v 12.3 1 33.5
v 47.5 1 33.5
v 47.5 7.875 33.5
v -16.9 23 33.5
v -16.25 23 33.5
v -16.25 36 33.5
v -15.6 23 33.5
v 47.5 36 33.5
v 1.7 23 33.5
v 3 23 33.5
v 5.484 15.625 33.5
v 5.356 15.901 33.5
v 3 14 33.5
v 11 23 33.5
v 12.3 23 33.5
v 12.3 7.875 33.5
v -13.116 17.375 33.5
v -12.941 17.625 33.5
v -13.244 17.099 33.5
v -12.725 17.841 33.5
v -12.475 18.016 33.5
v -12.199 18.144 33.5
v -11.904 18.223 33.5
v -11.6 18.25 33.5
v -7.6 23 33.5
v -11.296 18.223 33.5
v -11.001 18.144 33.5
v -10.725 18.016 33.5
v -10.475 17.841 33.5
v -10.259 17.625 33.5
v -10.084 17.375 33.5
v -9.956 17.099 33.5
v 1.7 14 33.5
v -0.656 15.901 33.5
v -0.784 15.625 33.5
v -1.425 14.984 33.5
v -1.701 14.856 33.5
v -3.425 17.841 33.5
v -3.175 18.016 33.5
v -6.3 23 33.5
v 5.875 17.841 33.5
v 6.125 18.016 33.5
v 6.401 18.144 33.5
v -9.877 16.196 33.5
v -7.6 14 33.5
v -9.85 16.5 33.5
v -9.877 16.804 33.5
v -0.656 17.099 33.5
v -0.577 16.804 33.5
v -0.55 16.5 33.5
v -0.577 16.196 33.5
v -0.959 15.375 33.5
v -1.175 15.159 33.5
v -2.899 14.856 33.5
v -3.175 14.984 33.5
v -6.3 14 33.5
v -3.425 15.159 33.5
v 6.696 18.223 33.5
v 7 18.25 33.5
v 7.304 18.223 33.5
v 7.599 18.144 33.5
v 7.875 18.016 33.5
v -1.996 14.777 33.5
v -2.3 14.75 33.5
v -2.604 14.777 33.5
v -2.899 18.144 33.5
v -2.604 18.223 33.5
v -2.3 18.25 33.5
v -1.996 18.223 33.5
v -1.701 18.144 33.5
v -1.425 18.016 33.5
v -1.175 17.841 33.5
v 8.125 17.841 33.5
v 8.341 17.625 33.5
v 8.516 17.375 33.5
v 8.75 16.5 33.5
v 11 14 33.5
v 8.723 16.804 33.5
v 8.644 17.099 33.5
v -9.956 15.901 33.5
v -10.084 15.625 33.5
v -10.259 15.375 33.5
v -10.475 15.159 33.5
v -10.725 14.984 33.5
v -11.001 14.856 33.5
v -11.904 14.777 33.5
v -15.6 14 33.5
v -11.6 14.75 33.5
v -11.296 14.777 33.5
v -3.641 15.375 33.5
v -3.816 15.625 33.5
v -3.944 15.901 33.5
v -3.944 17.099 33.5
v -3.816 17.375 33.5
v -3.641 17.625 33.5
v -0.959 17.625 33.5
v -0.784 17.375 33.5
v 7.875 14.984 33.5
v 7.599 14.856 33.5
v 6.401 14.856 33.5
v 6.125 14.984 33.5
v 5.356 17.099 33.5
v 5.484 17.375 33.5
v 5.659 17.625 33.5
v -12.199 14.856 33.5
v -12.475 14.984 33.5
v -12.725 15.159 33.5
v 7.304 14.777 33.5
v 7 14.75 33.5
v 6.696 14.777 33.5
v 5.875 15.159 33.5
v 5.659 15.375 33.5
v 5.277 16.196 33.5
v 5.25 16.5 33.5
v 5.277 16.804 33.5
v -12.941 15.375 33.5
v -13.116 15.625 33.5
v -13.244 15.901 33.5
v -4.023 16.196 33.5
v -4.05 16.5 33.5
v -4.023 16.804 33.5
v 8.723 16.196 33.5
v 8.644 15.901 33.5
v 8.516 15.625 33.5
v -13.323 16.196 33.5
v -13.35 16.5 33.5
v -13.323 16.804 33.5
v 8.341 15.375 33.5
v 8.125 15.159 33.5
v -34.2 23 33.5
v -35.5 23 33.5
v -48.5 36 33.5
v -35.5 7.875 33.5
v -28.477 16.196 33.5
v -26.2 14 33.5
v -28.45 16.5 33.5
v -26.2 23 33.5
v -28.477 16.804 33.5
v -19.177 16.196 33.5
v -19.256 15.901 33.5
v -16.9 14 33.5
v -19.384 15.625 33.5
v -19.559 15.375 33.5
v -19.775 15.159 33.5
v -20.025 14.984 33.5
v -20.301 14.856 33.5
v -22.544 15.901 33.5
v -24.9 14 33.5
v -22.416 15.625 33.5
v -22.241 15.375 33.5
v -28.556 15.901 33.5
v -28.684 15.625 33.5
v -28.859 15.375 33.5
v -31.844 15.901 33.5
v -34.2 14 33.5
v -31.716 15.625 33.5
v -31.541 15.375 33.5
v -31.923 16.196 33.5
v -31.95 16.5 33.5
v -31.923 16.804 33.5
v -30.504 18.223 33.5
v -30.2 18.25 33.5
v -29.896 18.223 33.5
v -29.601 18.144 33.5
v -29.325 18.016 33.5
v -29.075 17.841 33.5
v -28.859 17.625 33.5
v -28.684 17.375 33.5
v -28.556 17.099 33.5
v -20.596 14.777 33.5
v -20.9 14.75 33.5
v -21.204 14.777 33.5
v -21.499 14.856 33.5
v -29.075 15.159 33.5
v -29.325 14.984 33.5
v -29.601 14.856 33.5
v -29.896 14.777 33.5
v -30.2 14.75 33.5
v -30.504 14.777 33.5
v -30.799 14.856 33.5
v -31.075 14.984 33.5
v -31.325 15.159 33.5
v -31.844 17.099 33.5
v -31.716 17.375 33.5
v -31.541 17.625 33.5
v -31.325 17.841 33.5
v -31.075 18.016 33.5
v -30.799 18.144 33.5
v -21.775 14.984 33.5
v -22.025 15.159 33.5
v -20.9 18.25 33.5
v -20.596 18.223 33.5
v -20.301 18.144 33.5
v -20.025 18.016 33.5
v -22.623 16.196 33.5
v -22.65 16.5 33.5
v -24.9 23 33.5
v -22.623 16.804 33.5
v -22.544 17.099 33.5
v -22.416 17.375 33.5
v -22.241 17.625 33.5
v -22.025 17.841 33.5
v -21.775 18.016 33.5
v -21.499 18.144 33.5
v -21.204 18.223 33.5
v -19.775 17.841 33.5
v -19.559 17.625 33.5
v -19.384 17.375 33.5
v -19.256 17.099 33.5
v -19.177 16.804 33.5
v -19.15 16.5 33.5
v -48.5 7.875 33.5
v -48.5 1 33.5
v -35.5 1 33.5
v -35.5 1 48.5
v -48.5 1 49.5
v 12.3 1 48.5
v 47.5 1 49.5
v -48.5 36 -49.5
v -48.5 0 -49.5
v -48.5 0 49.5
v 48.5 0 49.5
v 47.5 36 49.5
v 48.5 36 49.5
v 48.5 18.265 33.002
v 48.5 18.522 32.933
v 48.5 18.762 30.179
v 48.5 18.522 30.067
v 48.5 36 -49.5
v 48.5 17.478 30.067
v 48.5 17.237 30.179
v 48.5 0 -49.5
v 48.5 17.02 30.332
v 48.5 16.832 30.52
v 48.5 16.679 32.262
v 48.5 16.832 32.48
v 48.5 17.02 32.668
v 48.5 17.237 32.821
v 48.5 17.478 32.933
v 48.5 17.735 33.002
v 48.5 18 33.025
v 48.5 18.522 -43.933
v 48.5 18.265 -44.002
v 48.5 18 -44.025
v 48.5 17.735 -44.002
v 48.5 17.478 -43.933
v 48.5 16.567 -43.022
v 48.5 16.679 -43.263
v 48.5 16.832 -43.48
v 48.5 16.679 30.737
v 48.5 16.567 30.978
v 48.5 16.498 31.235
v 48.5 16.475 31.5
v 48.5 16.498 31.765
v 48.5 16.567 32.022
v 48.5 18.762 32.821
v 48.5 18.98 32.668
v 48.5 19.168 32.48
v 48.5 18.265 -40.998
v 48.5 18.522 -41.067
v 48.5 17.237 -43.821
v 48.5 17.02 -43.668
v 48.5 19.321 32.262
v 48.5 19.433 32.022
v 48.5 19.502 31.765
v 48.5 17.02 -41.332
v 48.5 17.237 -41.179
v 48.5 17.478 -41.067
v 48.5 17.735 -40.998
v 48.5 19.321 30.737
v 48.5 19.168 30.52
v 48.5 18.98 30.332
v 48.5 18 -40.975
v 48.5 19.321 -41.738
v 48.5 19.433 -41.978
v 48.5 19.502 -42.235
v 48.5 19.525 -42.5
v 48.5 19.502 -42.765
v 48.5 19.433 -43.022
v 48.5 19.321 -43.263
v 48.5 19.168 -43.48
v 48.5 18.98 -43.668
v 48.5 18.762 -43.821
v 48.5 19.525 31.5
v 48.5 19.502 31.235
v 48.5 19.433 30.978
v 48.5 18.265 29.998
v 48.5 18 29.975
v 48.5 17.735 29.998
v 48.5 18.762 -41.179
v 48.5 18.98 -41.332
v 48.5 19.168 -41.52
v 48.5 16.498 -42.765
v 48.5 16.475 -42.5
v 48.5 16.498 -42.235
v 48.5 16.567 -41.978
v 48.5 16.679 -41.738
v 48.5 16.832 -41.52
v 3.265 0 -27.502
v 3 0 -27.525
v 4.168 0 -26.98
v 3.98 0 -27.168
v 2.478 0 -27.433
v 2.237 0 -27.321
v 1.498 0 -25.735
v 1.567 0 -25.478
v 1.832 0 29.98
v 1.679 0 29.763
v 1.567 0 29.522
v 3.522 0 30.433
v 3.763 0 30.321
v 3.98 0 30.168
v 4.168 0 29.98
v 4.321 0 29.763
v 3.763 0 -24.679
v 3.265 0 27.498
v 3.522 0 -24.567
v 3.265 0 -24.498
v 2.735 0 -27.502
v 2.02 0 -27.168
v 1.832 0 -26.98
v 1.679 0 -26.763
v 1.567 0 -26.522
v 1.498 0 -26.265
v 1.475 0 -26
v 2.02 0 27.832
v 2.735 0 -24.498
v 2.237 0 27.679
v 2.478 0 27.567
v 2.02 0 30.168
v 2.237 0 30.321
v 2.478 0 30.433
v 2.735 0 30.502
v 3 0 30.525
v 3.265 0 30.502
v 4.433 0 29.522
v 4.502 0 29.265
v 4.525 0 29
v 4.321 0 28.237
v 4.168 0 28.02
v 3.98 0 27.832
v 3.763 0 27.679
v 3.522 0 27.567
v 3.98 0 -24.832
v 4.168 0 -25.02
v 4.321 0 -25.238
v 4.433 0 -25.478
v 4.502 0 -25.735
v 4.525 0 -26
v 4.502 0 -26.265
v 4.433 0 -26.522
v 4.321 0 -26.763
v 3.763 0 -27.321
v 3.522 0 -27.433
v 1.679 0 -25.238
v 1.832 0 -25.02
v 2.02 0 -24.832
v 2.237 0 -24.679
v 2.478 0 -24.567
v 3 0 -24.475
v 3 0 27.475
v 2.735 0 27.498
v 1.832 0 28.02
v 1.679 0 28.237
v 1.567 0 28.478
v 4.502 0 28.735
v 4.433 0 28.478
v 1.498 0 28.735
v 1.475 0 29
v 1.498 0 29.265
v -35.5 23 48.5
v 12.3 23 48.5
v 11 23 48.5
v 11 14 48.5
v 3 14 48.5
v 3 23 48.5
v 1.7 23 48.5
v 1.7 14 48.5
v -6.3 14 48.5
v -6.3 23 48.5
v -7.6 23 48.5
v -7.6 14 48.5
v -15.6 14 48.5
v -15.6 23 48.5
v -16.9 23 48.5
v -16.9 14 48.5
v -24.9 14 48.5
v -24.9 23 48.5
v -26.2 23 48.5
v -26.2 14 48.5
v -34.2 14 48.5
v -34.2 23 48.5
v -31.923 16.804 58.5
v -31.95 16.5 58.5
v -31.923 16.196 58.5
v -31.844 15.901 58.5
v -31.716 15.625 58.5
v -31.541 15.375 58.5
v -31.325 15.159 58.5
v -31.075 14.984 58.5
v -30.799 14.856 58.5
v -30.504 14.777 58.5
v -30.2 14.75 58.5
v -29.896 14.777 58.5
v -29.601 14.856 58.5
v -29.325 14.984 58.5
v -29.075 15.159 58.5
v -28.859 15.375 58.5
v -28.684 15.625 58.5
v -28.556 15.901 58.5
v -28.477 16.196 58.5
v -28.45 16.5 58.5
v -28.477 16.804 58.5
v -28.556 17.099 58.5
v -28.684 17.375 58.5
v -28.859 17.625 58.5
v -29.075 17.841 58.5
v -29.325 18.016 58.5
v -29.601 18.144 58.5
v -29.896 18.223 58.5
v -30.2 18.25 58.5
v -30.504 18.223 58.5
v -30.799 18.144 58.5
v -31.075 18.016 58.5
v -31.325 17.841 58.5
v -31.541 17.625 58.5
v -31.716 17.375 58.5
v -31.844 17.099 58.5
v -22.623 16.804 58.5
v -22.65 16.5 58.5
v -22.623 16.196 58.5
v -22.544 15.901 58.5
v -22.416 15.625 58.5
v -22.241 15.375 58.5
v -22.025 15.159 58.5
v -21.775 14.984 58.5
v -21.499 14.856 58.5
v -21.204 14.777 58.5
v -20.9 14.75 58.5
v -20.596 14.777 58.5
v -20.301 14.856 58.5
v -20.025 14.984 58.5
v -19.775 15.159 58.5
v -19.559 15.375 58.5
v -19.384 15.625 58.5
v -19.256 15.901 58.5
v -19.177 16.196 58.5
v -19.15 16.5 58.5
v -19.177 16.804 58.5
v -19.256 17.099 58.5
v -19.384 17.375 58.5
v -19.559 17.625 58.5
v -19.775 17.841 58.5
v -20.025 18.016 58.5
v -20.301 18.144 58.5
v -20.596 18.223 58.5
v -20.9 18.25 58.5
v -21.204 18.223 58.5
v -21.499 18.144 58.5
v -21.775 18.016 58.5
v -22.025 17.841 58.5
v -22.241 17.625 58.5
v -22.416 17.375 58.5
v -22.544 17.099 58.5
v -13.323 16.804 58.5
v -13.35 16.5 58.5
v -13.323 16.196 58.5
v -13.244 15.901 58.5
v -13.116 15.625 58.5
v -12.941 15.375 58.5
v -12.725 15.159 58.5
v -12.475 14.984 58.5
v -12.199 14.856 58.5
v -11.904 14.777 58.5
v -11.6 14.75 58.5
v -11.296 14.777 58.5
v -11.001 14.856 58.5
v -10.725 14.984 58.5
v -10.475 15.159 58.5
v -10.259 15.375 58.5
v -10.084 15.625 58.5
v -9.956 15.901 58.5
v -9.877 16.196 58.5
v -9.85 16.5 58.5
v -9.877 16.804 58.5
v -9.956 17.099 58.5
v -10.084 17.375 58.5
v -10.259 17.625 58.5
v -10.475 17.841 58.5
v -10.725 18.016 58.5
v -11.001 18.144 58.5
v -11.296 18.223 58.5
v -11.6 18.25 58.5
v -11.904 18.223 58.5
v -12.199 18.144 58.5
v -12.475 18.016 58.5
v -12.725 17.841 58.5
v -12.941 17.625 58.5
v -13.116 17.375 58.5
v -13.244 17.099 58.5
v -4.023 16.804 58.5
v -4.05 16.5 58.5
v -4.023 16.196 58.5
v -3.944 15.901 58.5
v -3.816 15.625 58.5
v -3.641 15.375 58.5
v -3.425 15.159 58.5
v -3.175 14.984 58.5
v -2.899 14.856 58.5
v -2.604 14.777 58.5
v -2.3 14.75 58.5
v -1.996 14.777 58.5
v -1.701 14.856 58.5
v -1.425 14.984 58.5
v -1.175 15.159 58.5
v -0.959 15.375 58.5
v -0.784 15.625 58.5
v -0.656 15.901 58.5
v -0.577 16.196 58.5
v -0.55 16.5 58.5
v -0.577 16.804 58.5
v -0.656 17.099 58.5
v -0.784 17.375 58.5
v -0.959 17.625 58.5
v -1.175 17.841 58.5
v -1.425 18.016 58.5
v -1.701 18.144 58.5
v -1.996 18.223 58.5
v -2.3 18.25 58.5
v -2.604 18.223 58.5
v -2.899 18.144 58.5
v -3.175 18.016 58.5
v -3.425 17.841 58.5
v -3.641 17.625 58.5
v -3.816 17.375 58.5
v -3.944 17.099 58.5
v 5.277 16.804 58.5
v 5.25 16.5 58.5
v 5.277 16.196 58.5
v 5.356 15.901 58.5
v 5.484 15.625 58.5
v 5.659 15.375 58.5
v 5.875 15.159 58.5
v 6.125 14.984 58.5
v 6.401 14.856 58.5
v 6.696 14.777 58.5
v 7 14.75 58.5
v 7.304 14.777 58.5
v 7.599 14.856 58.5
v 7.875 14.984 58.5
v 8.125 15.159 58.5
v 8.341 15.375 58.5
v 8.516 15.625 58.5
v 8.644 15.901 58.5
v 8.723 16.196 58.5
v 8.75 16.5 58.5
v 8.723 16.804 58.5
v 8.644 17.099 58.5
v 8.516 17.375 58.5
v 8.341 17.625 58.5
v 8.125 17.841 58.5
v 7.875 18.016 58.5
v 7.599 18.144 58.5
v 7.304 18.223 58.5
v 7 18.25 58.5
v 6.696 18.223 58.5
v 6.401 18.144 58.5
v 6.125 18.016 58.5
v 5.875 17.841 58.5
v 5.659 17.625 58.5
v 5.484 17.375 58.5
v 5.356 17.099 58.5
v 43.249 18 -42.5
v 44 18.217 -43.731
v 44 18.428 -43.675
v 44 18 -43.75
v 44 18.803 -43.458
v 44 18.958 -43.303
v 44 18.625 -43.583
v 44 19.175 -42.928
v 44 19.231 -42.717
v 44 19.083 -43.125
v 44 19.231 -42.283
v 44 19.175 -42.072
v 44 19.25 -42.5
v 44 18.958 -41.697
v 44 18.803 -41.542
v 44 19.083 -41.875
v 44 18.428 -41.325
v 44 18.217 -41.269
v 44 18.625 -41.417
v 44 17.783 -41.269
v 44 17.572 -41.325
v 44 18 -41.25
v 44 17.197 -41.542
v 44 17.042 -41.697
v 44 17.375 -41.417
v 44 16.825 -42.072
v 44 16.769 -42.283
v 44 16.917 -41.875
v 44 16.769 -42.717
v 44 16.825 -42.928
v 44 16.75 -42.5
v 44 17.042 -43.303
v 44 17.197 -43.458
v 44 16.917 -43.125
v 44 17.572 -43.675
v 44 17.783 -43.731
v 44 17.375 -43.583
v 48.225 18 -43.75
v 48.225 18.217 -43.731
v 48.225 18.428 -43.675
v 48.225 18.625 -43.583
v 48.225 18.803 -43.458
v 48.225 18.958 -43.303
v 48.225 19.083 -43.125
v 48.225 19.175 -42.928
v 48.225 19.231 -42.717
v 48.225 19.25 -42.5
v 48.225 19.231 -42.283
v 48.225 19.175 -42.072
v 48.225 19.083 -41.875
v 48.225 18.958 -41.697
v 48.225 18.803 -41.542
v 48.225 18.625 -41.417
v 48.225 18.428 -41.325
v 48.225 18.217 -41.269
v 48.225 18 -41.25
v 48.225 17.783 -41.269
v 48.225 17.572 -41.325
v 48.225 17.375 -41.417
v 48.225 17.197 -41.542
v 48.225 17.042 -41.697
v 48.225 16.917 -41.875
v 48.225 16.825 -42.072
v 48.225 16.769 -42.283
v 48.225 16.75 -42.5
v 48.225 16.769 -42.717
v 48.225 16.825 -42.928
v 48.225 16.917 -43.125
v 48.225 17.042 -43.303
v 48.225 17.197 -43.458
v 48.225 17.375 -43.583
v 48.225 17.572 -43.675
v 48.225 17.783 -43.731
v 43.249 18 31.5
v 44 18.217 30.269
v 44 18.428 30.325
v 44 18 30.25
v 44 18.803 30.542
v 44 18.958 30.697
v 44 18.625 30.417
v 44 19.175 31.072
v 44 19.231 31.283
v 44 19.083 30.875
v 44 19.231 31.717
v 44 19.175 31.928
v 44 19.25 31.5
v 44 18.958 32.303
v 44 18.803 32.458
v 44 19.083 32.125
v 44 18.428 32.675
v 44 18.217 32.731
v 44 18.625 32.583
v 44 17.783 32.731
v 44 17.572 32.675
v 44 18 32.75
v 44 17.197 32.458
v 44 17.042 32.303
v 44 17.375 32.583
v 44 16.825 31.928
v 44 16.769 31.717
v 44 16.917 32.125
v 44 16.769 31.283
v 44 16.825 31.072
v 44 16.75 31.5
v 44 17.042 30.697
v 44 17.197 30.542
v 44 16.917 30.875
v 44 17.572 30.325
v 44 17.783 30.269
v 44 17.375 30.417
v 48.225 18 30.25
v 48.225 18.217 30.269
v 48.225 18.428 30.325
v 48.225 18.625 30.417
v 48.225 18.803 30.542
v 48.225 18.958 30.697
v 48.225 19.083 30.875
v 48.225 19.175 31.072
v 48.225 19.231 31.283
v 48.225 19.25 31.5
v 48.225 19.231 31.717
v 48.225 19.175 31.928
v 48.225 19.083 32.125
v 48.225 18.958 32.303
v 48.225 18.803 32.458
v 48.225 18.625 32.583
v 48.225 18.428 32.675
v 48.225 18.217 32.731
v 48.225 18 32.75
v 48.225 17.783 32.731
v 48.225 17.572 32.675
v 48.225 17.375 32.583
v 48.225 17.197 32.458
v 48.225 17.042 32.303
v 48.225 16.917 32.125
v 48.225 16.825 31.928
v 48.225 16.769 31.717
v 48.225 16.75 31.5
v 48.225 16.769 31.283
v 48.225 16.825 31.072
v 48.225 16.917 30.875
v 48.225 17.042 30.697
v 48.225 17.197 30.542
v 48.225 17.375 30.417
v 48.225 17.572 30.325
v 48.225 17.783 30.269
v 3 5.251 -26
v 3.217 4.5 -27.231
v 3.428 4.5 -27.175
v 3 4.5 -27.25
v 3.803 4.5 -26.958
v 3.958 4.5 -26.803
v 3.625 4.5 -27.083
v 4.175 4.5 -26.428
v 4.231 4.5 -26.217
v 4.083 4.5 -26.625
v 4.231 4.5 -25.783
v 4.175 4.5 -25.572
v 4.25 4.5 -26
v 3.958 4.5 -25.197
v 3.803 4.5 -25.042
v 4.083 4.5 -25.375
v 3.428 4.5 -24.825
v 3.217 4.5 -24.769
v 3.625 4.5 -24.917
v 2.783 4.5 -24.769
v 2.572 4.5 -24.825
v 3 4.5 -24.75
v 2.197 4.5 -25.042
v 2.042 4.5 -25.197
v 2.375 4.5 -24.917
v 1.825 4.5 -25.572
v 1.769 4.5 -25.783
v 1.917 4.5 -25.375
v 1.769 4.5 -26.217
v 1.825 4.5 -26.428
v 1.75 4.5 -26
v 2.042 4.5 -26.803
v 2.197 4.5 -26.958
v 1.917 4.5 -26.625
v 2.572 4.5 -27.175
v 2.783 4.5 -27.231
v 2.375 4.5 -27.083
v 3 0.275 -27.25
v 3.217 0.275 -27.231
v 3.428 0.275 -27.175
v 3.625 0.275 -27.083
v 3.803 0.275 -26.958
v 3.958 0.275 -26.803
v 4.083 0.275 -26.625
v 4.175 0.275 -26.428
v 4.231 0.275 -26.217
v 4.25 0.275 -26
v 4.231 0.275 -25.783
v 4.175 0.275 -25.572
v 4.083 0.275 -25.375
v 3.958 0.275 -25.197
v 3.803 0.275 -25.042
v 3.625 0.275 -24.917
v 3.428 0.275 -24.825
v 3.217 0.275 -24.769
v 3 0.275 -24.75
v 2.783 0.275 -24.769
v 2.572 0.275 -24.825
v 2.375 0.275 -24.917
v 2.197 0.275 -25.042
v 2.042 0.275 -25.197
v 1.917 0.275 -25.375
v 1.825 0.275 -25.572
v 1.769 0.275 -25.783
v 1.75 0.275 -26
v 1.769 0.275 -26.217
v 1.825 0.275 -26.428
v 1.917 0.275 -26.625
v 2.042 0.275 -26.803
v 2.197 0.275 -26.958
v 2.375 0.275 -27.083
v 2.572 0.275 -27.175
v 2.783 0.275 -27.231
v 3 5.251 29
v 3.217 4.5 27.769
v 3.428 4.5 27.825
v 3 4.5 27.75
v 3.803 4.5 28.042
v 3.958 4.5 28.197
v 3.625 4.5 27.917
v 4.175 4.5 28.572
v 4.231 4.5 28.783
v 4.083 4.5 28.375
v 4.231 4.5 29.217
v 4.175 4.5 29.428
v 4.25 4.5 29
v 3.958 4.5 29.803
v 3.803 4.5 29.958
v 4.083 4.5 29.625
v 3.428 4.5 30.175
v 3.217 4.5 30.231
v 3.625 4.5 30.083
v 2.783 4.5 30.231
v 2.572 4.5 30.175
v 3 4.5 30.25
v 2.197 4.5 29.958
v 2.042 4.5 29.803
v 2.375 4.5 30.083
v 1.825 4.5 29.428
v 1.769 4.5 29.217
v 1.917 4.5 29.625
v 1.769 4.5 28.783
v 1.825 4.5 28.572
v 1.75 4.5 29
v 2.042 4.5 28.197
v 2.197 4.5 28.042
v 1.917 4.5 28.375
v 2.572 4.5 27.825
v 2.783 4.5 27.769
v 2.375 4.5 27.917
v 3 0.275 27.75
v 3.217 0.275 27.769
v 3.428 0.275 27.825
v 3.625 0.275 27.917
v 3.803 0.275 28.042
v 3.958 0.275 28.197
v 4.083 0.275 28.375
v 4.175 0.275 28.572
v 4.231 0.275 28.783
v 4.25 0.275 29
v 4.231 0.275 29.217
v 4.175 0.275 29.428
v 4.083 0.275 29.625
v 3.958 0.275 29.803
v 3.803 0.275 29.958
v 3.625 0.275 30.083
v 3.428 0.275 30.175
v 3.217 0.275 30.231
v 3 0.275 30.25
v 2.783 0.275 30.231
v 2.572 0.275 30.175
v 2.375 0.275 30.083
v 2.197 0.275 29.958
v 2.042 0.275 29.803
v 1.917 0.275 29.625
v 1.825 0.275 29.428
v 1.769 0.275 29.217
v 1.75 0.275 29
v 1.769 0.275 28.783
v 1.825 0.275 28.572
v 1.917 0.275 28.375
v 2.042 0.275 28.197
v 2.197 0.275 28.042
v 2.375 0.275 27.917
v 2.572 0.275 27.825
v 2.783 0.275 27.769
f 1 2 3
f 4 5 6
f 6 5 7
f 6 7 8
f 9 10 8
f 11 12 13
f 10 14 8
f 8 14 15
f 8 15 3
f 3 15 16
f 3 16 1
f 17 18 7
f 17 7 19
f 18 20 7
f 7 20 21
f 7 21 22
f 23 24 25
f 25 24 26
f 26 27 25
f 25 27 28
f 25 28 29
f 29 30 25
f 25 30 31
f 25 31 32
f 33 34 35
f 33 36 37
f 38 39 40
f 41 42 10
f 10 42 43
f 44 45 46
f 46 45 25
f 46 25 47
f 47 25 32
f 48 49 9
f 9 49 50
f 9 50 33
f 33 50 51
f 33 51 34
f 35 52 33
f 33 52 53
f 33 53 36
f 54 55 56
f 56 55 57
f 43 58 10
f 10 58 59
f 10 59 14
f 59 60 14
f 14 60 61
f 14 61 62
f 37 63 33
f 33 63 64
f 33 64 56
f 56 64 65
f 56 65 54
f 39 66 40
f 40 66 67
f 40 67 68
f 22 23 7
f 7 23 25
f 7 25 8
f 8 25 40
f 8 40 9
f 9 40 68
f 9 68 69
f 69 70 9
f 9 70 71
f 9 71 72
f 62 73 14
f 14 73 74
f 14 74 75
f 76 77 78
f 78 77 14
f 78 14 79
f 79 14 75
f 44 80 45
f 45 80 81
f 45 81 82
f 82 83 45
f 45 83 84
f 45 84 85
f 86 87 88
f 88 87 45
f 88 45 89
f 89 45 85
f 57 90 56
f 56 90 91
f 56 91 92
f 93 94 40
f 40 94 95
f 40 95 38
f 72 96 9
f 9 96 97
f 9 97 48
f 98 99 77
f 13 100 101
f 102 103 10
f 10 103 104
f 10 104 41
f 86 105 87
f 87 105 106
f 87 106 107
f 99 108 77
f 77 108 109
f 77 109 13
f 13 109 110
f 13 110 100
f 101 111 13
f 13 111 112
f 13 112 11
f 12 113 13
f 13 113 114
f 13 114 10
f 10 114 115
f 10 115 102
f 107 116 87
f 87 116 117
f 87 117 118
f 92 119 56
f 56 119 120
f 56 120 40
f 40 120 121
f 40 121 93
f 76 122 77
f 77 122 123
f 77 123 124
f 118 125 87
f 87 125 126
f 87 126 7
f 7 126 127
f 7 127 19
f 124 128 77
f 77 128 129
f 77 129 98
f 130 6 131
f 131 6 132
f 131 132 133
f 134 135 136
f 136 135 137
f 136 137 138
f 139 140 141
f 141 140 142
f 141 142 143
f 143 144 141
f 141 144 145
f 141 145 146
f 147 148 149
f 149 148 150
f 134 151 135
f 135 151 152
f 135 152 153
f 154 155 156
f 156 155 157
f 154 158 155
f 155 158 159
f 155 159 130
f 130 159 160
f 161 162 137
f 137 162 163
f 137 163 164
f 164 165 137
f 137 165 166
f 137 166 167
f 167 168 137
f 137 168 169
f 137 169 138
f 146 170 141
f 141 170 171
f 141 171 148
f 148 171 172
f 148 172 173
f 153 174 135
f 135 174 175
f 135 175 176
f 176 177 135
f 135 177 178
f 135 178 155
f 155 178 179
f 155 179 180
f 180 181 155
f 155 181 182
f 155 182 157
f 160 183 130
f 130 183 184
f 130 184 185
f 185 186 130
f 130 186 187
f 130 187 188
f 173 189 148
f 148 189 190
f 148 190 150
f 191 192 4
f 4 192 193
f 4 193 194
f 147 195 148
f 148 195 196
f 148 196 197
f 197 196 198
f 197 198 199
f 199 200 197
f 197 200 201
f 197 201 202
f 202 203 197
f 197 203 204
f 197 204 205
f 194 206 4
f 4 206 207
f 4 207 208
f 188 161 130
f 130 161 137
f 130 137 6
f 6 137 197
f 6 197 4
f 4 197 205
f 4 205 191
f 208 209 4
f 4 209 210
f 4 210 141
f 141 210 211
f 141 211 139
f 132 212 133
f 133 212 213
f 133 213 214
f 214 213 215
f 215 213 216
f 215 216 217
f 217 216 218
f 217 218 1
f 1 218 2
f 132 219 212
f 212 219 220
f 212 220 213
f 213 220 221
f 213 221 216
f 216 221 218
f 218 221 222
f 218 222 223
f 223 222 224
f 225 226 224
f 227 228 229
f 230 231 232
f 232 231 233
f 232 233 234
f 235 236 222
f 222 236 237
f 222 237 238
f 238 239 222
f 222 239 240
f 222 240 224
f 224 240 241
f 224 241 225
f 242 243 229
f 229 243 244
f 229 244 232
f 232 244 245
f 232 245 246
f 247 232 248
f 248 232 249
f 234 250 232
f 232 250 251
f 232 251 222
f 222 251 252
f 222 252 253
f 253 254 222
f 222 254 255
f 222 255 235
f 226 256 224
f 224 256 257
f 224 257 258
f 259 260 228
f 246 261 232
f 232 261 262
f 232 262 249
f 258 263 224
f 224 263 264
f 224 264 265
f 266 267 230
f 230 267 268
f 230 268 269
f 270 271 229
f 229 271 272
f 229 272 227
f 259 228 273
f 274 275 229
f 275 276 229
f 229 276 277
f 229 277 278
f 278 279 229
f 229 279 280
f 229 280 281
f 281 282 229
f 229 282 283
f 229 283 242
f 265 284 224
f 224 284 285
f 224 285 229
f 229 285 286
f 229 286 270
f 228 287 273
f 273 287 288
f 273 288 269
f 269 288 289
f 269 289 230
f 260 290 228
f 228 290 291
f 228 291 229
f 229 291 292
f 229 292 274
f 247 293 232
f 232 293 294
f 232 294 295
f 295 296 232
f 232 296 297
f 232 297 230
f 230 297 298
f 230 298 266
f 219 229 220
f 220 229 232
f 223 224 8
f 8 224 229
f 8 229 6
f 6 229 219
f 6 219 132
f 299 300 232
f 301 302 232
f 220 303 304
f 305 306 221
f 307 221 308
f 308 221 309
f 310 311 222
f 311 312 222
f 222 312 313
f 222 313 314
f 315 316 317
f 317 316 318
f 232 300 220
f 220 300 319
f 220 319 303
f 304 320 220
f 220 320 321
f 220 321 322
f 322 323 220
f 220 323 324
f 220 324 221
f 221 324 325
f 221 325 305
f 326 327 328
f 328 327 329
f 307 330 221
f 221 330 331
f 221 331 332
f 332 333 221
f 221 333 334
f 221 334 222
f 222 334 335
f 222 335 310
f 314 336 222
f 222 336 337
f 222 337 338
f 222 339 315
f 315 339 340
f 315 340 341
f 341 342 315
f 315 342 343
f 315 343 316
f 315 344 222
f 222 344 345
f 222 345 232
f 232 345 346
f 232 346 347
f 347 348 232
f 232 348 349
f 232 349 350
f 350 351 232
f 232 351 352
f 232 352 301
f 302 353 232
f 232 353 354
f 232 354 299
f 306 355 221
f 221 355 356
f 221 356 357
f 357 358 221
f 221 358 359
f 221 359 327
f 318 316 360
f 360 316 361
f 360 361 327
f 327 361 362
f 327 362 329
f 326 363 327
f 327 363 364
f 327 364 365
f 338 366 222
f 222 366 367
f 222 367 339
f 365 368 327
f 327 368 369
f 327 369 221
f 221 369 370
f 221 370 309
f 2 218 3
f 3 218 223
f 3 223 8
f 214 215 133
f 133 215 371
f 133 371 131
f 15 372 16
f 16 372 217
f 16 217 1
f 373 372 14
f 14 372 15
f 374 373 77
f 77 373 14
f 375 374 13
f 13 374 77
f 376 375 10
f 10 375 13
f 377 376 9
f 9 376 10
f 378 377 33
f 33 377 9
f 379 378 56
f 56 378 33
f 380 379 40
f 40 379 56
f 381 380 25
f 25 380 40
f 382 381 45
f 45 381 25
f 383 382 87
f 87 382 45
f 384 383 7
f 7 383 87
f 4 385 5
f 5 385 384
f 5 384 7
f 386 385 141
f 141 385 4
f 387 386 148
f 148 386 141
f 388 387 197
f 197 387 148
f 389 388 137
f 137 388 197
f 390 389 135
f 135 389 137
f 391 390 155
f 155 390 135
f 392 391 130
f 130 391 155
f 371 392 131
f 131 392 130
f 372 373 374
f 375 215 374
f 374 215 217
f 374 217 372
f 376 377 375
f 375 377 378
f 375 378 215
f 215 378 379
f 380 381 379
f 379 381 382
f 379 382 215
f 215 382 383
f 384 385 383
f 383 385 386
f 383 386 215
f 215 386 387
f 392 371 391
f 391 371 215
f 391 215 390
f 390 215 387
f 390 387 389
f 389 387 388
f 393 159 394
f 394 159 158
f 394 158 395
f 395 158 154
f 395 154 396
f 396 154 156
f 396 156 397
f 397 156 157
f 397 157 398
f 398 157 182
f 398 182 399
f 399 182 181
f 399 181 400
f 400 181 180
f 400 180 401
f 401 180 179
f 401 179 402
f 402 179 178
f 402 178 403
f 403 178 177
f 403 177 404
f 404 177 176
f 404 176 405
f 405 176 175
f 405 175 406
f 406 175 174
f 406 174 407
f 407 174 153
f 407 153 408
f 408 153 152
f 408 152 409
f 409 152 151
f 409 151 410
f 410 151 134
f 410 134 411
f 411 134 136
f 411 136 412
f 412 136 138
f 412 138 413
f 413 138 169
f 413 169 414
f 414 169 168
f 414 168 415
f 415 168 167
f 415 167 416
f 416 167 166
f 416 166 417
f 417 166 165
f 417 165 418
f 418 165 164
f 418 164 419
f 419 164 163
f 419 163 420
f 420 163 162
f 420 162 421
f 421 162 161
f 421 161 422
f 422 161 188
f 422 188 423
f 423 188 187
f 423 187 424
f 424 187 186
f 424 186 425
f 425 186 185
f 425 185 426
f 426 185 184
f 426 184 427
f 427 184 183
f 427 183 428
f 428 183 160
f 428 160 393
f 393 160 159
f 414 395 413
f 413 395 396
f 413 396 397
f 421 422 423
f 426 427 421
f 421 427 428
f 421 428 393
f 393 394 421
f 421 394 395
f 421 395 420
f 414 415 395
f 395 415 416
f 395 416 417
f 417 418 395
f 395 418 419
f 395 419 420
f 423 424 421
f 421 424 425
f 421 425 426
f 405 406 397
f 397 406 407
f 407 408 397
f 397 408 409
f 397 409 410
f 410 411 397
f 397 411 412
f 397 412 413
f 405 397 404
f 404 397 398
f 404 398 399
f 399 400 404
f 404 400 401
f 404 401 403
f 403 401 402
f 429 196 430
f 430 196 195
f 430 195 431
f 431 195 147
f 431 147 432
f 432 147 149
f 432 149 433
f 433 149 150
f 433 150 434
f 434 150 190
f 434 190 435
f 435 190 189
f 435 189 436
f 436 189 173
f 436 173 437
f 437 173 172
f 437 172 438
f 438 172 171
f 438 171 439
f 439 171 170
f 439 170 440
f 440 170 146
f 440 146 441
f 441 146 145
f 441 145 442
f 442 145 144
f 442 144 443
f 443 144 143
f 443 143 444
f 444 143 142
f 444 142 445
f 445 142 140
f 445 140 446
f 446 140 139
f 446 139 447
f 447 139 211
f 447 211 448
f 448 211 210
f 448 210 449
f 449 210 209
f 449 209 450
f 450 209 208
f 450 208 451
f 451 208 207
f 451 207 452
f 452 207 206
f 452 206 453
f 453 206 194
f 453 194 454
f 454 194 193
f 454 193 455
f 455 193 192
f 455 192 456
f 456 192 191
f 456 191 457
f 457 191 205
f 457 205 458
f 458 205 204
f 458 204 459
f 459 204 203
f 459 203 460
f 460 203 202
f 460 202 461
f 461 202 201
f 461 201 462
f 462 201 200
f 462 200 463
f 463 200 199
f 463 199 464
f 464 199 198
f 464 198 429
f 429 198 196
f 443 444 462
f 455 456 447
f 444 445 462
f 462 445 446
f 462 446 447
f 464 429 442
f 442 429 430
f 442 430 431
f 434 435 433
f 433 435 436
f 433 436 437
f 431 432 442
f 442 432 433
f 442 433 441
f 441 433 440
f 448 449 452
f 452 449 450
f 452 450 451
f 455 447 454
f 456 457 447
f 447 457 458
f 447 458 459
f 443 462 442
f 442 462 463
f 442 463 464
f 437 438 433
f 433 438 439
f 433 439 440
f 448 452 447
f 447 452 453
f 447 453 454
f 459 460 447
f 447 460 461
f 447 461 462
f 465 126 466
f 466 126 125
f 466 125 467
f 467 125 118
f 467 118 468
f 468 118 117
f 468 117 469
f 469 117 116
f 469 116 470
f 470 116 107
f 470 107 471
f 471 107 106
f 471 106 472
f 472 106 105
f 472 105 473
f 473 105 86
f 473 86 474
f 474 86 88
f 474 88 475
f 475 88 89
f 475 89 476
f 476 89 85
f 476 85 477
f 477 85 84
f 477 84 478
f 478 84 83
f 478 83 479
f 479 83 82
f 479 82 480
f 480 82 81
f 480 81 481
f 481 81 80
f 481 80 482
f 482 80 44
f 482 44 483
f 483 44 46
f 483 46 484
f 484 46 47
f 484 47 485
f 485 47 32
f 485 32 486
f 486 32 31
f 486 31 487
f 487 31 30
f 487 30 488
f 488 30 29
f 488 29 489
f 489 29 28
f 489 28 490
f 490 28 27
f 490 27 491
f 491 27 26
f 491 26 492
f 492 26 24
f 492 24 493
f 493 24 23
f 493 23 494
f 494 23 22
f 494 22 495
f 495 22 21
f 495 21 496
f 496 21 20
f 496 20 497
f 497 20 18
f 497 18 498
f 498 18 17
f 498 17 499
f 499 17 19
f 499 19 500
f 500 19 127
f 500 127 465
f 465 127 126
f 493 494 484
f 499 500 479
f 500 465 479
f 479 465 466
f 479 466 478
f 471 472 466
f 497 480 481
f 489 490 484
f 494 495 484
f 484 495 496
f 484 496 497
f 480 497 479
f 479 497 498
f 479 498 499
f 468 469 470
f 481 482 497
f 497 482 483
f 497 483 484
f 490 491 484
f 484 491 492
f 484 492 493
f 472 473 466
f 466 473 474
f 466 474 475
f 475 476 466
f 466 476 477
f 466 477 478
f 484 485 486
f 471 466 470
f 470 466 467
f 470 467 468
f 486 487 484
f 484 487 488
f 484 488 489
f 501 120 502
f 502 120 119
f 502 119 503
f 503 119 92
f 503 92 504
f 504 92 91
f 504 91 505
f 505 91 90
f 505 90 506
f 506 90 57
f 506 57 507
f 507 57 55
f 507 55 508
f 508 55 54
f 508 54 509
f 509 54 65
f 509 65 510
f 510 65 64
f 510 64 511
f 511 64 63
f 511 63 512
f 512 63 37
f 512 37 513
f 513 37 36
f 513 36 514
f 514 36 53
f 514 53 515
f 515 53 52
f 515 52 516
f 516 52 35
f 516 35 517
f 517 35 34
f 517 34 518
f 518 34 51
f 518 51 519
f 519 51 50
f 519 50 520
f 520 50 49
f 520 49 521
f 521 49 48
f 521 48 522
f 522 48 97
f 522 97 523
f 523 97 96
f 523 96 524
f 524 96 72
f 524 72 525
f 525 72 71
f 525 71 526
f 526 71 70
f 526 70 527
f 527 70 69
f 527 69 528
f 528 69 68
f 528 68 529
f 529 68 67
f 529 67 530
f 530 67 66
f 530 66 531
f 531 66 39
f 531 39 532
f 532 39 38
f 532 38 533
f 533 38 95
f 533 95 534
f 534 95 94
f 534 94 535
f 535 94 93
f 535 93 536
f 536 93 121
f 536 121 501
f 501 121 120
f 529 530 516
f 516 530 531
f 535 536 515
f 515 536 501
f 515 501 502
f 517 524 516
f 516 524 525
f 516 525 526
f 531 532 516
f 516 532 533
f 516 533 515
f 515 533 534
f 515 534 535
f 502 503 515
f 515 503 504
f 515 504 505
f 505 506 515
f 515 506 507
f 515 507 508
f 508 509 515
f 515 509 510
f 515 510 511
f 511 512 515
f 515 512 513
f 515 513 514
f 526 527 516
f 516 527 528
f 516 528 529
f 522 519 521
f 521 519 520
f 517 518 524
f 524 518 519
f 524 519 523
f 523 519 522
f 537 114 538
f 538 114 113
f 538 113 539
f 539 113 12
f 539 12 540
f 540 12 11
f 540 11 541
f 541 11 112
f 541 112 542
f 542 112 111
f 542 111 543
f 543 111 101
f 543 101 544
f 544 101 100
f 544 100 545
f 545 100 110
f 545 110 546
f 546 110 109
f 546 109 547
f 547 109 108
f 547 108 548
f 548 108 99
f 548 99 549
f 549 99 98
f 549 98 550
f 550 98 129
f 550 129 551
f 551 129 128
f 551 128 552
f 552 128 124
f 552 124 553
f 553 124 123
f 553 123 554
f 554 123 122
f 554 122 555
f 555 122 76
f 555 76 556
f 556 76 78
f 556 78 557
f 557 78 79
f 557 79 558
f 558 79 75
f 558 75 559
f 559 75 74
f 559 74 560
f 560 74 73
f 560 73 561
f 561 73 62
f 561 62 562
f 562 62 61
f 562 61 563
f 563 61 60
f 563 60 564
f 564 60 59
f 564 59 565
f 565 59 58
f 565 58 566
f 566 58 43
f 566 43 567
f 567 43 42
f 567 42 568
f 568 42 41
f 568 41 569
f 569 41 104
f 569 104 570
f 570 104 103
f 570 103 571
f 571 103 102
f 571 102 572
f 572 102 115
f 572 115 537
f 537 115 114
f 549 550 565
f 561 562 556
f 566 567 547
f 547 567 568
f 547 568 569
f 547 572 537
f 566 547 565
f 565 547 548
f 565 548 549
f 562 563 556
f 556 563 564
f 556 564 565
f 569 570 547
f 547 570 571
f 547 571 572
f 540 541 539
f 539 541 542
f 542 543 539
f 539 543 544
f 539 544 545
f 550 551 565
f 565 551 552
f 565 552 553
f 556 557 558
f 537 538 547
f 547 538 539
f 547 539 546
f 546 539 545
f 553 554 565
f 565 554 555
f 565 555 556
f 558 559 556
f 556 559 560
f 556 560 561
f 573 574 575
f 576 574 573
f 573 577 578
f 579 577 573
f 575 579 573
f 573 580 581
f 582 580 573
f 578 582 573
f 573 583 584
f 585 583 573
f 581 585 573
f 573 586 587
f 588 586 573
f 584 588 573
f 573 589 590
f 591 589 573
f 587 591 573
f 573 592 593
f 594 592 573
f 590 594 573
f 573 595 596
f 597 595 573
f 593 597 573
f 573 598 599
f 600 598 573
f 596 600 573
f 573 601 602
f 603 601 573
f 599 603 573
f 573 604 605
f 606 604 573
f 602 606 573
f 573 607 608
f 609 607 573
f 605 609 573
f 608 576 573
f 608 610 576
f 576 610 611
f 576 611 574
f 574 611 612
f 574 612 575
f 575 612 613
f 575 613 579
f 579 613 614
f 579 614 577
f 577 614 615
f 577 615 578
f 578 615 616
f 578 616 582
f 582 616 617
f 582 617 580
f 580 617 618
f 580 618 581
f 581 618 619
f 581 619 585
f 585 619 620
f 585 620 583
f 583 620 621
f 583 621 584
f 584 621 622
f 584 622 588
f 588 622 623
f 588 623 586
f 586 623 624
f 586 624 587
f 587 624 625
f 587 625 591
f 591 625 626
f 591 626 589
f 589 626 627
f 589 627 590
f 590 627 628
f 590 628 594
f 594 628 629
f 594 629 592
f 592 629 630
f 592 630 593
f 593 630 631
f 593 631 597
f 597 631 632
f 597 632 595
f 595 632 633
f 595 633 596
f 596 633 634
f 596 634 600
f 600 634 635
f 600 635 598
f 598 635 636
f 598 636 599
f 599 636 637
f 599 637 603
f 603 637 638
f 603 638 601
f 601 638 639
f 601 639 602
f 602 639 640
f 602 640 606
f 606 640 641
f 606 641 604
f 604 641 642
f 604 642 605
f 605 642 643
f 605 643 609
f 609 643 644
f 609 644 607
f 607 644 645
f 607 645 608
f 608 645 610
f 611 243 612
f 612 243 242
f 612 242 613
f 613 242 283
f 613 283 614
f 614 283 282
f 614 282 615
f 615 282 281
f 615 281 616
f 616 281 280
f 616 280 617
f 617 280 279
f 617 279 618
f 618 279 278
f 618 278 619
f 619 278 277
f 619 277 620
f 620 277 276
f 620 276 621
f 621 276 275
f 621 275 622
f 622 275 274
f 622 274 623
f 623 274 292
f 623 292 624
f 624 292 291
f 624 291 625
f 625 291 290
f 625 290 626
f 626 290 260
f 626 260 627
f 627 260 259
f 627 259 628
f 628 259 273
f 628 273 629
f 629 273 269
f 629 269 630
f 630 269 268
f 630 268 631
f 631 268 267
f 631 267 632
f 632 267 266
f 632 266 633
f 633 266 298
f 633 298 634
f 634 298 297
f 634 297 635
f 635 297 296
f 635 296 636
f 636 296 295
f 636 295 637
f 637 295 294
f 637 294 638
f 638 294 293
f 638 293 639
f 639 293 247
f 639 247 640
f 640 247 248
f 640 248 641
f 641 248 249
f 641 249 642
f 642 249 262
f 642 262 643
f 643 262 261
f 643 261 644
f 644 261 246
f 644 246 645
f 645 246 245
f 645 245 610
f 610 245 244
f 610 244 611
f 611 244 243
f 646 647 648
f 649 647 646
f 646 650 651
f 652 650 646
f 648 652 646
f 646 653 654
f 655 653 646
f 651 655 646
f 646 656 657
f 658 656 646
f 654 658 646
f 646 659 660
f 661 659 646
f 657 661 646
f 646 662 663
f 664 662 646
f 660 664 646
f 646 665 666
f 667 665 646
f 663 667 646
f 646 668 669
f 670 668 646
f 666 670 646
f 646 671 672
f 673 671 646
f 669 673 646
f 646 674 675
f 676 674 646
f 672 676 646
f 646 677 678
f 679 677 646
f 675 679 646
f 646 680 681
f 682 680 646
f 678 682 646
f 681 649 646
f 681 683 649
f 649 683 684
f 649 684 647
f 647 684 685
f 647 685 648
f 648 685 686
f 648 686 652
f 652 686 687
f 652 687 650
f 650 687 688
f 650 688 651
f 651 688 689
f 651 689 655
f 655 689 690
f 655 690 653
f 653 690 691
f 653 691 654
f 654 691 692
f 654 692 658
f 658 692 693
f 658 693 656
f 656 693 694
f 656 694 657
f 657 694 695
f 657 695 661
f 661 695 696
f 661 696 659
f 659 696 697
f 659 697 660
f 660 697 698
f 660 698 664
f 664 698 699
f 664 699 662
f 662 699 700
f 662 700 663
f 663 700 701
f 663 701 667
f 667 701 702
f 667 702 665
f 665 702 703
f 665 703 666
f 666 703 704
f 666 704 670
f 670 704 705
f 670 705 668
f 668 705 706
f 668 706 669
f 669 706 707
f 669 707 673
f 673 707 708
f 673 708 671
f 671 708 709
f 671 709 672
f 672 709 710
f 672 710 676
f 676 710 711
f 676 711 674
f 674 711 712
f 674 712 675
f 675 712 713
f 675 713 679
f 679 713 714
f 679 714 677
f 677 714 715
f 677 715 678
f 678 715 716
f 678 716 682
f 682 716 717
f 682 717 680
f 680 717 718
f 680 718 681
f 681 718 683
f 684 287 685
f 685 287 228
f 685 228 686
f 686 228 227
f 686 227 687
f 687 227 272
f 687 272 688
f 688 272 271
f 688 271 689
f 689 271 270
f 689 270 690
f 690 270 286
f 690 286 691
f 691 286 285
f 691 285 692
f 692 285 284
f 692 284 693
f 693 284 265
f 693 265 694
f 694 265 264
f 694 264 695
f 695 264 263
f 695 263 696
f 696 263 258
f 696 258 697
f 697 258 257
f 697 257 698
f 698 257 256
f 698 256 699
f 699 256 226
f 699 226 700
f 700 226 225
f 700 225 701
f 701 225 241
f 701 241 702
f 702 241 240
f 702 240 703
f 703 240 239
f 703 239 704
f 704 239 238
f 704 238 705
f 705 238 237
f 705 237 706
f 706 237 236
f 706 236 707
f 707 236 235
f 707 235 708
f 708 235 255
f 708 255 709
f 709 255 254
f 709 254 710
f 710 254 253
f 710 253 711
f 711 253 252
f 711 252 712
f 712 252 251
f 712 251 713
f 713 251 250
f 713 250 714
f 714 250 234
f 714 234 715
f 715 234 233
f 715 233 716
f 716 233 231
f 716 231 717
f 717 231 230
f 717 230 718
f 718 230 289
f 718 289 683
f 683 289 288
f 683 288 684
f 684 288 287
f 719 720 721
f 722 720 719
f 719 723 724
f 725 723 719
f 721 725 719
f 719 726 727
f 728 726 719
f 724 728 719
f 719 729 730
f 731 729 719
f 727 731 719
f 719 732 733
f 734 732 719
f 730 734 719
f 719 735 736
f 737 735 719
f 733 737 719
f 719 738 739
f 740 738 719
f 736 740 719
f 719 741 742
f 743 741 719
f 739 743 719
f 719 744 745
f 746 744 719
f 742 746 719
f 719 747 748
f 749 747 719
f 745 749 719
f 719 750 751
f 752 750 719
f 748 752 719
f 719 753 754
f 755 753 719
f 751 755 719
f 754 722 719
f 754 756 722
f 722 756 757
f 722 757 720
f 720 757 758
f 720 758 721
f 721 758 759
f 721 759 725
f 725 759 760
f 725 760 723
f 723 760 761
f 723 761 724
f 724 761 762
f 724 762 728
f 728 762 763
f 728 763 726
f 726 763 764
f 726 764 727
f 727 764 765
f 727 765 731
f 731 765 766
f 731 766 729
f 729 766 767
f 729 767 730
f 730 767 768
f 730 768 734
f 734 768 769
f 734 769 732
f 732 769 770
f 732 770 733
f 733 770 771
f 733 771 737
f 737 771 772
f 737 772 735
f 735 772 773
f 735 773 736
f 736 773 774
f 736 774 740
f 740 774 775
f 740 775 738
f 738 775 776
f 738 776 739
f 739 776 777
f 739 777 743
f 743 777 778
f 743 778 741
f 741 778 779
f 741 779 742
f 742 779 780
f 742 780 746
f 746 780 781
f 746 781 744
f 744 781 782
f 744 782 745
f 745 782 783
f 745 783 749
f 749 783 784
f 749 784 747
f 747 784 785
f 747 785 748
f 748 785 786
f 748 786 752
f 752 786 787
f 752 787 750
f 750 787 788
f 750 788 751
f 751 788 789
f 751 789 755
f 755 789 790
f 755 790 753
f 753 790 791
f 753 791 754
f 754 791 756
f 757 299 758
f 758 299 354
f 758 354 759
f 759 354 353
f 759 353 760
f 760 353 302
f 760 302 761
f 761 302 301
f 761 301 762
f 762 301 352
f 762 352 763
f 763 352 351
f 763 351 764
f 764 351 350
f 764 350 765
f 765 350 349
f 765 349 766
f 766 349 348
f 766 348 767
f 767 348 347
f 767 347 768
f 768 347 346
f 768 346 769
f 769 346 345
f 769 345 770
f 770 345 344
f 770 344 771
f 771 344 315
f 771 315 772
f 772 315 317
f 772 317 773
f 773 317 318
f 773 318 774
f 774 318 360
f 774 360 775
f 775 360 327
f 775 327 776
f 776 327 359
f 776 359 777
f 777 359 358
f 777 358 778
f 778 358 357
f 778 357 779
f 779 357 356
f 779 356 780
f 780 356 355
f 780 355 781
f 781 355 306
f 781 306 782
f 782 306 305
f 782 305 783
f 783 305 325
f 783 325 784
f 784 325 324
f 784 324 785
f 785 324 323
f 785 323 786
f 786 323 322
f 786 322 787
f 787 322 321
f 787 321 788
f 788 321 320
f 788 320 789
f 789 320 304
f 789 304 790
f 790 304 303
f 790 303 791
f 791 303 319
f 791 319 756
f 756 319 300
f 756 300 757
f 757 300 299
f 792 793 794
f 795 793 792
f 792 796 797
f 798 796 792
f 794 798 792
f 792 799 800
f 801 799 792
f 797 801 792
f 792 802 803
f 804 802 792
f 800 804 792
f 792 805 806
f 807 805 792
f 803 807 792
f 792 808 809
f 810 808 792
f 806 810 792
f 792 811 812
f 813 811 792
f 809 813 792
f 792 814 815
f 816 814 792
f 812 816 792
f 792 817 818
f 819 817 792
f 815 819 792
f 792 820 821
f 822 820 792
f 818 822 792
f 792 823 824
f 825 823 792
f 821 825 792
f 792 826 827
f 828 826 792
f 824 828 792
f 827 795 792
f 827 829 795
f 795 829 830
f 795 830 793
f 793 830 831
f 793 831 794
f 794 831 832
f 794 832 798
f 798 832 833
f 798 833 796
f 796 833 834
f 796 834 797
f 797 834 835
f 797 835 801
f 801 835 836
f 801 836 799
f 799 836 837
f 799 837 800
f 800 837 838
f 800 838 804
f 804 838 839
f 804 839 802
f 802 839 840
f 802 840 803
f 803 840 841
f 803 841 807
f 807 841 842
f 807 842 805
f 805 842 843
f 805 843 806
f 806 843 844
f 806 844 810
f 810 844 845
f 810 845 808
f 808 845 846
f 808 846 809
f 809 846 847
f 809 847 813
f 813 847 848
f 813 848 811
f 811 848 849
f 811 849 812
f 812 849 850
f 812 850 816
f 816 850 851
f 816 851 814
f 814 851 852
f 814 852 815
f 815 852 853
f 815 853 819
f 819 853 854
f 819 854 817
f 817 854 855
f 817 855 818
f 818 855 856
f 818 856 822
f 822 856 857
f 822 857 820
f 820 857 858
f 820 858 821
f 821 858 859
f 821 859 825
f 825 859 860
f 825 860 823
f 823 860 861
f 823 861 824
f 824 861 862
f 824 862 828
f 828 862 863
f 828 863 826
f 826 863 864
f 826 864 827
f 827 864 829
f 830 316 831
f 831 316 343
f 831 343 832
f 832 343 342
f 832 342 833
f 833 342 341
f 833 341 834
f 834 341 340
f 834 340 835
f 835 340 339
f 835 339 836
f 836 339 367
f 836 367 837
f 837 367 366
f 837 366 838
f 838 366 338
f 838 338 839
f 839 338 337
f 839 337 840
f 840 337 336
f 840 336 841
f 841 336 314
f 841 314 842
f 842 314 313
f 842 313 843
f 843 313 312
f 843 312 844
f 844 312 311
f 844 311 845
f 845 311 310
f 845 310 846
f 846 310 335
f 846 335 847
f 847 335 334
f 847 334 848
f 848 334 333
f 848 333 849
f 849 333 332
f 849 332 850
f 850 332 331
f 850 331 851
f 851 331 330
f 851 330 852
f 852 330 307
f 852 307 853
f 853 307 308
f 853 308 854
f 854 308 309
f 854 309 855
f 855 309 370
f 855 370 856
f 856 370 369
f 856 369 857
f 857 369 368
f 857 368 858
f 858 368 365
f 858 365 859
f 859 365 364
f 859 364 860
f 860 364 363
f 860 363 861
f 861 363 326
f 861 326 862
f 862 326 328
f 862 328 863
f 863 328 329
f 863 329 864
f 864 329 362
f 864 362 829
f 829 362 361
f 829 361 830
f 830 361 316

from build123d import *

# Parameters (mm, degrees)
SKETCH1_W                   = 97
SKETCH1_H                   = 99
BOSS_EXTRUDE1_DEPTH         = 36
SKETCH2_W                   = 96
SKETCH2_H                   = 35
CUT_EXTRUDE1_DEPTH          = 16
BOSS_EXTRUDE2_DEPTH         = 15
SKETCH4_R                   = 1.75
BOSS_EXTRUDE3_DEPTH         = 25
M3_TAPPED_HOLE1_D           = 2.5
M3_TAPPED_HOLE1_DEPTH       = 4.5
M3_TAPPED_HOLE1_CSINK_D     = 3.05
M3_TAPPED_HOLE1_CSINK_ANGLE = 90
M3_TAPPED_HOLE1_TIP         = 0.751075774
M3_TAPPED_HOLE2_D           = 2.5
M3_TAPPED_HOLE2_DEPTH       = 4.5
M3_TAPPED_HOLE2_CSINK_D     = 3.05
M3_TAPPED_HOLE2_CSINK_ANGLE = 90
M3_TAPPED_HOLE2_TIP         = 0.751075774


with BuildPart() as part:
    # Sketch1 → Boss-Extrude1 (new body)
    with BuildSketch(Plane(origin=(0, 0, 0), x_dir=(1, 0, 0), z_dir=(0, 1, 0))):
        Rectangle(SKETCH1_W, SKETCH1_H)
    extrude(amount=BOSS_EXTRUDE1_DEPTH)

    # Sketch2 → Cut-Extrude1 (cut)
    with BuildSketch(Plane.XY.offset(49.5)):
        with Locations((-0.5, 18.5)):
            Rectangle(SKETCH2_W, SKETCH2_H)
    extrude(amount=-CUT_EXTRUDE1_DEPTH, mode=Mode.SUBTRACT)

    # Sketch3 → Boss-Extrude2 (add)
    with BuildSketch(Plane.XY.offset(33.5)):
        Polygon((-35.5, 1), (12.3, 1), (12.3, 23), (11, 23), (11, 14), (3, 14), (3, 23), (1.7, 23), (1.7, 14), (-6.3, 14), (-6.3, 23), (-7.6, 23), (-7.6, 14), (-15.6, 14), (-15.6, 23), (-16.9, 23), (-16.9, 14), (-24.9, 14), (-24.9, 23), (-26.2, 23), (-26.2, 14), (-34.2, 14), (-34.2, 23), (-35.5, 23), align=None)
    extrude(amount=BOSS_EXTRUDE2_DEPTH)

    # Sketch4 → Boss-Extrude3 (add)
    with BuildSketch(Plane.XY.offset(33.5)):
        with Locations((-30.2, 16.5)):
            Circle(SKETCH4_R)
        with Locations((-20.9, 16.5)):
            Circle(SKETCH4_R)
        with Locations((-11.6, 16.5)):
            Circle(SKETCH4_R)
        with Locations((-2.3, 16.5)):
            Circle(SKETCH4_R)
        with Locations((7, 16.5)):
            Circle(SKETCH4_R)
    extrude(amount=BOSS_EXTRUDE3_DEPTH)

    # M3 Tapped Hole1
    with Locations(Plane(origin=(48.5, 0, 0), x_dir=(0, 0, -1), z_dir=(1, 0, 0))):
        with Locations((-31.5, 18), (42.5, 18)):
            CounterSinkHole(M3_TAPPED_HOLE1_D / 2, M3_TAPPED_HOLE1_CSINK_D / 2, depth=M3_TAPPED_HOLE1_DEPTH, counter_sink_angle=M3_TAPPED_HOLE1_CSINK_ANGLE)
            with Locations((0, 0, -(M3_TAPPED_HOLE1_DEPTH + M3_TAPPED_HOLE1_TIP / 2))):  # 118° drill point
                Cone(0, M3_TAPPED_HOLE1_D / 2, M3_TAPPED_HOLE1_TIP, mode=Mode.SUBTRACT)

    # M3 Tapped Hole2
    with Locations(Plane(origin=(0, 0, 0), x_dir=(-1, 0, 0), z_dir=(0, -1, 0))):
        with Locations((-3, -29), (-3, 26)):
            CounterSinkHole(M3_TAPPED_HOLE2_D / 2, M3_TAPPED_HOLE2_CSINK_D / 2, depth=M3_TAPPED_HOLE2_DEPTH, counter_sink_angle=M3_TAPPED_HOLE2_CSINK_ANGLE)
            with Locations((0, 0, -(M3_TAPPED_HOLE2_DEPTH + M3_TAPPED_HOLE2_TIP / 2))):  # 118° drill point
                Cone(0, M3_TAPPED_HOLE2_D / 2, M3_TAPPED_HOLE2_TIP, mode=Mode.SUBTRACT)


solid = part.part
